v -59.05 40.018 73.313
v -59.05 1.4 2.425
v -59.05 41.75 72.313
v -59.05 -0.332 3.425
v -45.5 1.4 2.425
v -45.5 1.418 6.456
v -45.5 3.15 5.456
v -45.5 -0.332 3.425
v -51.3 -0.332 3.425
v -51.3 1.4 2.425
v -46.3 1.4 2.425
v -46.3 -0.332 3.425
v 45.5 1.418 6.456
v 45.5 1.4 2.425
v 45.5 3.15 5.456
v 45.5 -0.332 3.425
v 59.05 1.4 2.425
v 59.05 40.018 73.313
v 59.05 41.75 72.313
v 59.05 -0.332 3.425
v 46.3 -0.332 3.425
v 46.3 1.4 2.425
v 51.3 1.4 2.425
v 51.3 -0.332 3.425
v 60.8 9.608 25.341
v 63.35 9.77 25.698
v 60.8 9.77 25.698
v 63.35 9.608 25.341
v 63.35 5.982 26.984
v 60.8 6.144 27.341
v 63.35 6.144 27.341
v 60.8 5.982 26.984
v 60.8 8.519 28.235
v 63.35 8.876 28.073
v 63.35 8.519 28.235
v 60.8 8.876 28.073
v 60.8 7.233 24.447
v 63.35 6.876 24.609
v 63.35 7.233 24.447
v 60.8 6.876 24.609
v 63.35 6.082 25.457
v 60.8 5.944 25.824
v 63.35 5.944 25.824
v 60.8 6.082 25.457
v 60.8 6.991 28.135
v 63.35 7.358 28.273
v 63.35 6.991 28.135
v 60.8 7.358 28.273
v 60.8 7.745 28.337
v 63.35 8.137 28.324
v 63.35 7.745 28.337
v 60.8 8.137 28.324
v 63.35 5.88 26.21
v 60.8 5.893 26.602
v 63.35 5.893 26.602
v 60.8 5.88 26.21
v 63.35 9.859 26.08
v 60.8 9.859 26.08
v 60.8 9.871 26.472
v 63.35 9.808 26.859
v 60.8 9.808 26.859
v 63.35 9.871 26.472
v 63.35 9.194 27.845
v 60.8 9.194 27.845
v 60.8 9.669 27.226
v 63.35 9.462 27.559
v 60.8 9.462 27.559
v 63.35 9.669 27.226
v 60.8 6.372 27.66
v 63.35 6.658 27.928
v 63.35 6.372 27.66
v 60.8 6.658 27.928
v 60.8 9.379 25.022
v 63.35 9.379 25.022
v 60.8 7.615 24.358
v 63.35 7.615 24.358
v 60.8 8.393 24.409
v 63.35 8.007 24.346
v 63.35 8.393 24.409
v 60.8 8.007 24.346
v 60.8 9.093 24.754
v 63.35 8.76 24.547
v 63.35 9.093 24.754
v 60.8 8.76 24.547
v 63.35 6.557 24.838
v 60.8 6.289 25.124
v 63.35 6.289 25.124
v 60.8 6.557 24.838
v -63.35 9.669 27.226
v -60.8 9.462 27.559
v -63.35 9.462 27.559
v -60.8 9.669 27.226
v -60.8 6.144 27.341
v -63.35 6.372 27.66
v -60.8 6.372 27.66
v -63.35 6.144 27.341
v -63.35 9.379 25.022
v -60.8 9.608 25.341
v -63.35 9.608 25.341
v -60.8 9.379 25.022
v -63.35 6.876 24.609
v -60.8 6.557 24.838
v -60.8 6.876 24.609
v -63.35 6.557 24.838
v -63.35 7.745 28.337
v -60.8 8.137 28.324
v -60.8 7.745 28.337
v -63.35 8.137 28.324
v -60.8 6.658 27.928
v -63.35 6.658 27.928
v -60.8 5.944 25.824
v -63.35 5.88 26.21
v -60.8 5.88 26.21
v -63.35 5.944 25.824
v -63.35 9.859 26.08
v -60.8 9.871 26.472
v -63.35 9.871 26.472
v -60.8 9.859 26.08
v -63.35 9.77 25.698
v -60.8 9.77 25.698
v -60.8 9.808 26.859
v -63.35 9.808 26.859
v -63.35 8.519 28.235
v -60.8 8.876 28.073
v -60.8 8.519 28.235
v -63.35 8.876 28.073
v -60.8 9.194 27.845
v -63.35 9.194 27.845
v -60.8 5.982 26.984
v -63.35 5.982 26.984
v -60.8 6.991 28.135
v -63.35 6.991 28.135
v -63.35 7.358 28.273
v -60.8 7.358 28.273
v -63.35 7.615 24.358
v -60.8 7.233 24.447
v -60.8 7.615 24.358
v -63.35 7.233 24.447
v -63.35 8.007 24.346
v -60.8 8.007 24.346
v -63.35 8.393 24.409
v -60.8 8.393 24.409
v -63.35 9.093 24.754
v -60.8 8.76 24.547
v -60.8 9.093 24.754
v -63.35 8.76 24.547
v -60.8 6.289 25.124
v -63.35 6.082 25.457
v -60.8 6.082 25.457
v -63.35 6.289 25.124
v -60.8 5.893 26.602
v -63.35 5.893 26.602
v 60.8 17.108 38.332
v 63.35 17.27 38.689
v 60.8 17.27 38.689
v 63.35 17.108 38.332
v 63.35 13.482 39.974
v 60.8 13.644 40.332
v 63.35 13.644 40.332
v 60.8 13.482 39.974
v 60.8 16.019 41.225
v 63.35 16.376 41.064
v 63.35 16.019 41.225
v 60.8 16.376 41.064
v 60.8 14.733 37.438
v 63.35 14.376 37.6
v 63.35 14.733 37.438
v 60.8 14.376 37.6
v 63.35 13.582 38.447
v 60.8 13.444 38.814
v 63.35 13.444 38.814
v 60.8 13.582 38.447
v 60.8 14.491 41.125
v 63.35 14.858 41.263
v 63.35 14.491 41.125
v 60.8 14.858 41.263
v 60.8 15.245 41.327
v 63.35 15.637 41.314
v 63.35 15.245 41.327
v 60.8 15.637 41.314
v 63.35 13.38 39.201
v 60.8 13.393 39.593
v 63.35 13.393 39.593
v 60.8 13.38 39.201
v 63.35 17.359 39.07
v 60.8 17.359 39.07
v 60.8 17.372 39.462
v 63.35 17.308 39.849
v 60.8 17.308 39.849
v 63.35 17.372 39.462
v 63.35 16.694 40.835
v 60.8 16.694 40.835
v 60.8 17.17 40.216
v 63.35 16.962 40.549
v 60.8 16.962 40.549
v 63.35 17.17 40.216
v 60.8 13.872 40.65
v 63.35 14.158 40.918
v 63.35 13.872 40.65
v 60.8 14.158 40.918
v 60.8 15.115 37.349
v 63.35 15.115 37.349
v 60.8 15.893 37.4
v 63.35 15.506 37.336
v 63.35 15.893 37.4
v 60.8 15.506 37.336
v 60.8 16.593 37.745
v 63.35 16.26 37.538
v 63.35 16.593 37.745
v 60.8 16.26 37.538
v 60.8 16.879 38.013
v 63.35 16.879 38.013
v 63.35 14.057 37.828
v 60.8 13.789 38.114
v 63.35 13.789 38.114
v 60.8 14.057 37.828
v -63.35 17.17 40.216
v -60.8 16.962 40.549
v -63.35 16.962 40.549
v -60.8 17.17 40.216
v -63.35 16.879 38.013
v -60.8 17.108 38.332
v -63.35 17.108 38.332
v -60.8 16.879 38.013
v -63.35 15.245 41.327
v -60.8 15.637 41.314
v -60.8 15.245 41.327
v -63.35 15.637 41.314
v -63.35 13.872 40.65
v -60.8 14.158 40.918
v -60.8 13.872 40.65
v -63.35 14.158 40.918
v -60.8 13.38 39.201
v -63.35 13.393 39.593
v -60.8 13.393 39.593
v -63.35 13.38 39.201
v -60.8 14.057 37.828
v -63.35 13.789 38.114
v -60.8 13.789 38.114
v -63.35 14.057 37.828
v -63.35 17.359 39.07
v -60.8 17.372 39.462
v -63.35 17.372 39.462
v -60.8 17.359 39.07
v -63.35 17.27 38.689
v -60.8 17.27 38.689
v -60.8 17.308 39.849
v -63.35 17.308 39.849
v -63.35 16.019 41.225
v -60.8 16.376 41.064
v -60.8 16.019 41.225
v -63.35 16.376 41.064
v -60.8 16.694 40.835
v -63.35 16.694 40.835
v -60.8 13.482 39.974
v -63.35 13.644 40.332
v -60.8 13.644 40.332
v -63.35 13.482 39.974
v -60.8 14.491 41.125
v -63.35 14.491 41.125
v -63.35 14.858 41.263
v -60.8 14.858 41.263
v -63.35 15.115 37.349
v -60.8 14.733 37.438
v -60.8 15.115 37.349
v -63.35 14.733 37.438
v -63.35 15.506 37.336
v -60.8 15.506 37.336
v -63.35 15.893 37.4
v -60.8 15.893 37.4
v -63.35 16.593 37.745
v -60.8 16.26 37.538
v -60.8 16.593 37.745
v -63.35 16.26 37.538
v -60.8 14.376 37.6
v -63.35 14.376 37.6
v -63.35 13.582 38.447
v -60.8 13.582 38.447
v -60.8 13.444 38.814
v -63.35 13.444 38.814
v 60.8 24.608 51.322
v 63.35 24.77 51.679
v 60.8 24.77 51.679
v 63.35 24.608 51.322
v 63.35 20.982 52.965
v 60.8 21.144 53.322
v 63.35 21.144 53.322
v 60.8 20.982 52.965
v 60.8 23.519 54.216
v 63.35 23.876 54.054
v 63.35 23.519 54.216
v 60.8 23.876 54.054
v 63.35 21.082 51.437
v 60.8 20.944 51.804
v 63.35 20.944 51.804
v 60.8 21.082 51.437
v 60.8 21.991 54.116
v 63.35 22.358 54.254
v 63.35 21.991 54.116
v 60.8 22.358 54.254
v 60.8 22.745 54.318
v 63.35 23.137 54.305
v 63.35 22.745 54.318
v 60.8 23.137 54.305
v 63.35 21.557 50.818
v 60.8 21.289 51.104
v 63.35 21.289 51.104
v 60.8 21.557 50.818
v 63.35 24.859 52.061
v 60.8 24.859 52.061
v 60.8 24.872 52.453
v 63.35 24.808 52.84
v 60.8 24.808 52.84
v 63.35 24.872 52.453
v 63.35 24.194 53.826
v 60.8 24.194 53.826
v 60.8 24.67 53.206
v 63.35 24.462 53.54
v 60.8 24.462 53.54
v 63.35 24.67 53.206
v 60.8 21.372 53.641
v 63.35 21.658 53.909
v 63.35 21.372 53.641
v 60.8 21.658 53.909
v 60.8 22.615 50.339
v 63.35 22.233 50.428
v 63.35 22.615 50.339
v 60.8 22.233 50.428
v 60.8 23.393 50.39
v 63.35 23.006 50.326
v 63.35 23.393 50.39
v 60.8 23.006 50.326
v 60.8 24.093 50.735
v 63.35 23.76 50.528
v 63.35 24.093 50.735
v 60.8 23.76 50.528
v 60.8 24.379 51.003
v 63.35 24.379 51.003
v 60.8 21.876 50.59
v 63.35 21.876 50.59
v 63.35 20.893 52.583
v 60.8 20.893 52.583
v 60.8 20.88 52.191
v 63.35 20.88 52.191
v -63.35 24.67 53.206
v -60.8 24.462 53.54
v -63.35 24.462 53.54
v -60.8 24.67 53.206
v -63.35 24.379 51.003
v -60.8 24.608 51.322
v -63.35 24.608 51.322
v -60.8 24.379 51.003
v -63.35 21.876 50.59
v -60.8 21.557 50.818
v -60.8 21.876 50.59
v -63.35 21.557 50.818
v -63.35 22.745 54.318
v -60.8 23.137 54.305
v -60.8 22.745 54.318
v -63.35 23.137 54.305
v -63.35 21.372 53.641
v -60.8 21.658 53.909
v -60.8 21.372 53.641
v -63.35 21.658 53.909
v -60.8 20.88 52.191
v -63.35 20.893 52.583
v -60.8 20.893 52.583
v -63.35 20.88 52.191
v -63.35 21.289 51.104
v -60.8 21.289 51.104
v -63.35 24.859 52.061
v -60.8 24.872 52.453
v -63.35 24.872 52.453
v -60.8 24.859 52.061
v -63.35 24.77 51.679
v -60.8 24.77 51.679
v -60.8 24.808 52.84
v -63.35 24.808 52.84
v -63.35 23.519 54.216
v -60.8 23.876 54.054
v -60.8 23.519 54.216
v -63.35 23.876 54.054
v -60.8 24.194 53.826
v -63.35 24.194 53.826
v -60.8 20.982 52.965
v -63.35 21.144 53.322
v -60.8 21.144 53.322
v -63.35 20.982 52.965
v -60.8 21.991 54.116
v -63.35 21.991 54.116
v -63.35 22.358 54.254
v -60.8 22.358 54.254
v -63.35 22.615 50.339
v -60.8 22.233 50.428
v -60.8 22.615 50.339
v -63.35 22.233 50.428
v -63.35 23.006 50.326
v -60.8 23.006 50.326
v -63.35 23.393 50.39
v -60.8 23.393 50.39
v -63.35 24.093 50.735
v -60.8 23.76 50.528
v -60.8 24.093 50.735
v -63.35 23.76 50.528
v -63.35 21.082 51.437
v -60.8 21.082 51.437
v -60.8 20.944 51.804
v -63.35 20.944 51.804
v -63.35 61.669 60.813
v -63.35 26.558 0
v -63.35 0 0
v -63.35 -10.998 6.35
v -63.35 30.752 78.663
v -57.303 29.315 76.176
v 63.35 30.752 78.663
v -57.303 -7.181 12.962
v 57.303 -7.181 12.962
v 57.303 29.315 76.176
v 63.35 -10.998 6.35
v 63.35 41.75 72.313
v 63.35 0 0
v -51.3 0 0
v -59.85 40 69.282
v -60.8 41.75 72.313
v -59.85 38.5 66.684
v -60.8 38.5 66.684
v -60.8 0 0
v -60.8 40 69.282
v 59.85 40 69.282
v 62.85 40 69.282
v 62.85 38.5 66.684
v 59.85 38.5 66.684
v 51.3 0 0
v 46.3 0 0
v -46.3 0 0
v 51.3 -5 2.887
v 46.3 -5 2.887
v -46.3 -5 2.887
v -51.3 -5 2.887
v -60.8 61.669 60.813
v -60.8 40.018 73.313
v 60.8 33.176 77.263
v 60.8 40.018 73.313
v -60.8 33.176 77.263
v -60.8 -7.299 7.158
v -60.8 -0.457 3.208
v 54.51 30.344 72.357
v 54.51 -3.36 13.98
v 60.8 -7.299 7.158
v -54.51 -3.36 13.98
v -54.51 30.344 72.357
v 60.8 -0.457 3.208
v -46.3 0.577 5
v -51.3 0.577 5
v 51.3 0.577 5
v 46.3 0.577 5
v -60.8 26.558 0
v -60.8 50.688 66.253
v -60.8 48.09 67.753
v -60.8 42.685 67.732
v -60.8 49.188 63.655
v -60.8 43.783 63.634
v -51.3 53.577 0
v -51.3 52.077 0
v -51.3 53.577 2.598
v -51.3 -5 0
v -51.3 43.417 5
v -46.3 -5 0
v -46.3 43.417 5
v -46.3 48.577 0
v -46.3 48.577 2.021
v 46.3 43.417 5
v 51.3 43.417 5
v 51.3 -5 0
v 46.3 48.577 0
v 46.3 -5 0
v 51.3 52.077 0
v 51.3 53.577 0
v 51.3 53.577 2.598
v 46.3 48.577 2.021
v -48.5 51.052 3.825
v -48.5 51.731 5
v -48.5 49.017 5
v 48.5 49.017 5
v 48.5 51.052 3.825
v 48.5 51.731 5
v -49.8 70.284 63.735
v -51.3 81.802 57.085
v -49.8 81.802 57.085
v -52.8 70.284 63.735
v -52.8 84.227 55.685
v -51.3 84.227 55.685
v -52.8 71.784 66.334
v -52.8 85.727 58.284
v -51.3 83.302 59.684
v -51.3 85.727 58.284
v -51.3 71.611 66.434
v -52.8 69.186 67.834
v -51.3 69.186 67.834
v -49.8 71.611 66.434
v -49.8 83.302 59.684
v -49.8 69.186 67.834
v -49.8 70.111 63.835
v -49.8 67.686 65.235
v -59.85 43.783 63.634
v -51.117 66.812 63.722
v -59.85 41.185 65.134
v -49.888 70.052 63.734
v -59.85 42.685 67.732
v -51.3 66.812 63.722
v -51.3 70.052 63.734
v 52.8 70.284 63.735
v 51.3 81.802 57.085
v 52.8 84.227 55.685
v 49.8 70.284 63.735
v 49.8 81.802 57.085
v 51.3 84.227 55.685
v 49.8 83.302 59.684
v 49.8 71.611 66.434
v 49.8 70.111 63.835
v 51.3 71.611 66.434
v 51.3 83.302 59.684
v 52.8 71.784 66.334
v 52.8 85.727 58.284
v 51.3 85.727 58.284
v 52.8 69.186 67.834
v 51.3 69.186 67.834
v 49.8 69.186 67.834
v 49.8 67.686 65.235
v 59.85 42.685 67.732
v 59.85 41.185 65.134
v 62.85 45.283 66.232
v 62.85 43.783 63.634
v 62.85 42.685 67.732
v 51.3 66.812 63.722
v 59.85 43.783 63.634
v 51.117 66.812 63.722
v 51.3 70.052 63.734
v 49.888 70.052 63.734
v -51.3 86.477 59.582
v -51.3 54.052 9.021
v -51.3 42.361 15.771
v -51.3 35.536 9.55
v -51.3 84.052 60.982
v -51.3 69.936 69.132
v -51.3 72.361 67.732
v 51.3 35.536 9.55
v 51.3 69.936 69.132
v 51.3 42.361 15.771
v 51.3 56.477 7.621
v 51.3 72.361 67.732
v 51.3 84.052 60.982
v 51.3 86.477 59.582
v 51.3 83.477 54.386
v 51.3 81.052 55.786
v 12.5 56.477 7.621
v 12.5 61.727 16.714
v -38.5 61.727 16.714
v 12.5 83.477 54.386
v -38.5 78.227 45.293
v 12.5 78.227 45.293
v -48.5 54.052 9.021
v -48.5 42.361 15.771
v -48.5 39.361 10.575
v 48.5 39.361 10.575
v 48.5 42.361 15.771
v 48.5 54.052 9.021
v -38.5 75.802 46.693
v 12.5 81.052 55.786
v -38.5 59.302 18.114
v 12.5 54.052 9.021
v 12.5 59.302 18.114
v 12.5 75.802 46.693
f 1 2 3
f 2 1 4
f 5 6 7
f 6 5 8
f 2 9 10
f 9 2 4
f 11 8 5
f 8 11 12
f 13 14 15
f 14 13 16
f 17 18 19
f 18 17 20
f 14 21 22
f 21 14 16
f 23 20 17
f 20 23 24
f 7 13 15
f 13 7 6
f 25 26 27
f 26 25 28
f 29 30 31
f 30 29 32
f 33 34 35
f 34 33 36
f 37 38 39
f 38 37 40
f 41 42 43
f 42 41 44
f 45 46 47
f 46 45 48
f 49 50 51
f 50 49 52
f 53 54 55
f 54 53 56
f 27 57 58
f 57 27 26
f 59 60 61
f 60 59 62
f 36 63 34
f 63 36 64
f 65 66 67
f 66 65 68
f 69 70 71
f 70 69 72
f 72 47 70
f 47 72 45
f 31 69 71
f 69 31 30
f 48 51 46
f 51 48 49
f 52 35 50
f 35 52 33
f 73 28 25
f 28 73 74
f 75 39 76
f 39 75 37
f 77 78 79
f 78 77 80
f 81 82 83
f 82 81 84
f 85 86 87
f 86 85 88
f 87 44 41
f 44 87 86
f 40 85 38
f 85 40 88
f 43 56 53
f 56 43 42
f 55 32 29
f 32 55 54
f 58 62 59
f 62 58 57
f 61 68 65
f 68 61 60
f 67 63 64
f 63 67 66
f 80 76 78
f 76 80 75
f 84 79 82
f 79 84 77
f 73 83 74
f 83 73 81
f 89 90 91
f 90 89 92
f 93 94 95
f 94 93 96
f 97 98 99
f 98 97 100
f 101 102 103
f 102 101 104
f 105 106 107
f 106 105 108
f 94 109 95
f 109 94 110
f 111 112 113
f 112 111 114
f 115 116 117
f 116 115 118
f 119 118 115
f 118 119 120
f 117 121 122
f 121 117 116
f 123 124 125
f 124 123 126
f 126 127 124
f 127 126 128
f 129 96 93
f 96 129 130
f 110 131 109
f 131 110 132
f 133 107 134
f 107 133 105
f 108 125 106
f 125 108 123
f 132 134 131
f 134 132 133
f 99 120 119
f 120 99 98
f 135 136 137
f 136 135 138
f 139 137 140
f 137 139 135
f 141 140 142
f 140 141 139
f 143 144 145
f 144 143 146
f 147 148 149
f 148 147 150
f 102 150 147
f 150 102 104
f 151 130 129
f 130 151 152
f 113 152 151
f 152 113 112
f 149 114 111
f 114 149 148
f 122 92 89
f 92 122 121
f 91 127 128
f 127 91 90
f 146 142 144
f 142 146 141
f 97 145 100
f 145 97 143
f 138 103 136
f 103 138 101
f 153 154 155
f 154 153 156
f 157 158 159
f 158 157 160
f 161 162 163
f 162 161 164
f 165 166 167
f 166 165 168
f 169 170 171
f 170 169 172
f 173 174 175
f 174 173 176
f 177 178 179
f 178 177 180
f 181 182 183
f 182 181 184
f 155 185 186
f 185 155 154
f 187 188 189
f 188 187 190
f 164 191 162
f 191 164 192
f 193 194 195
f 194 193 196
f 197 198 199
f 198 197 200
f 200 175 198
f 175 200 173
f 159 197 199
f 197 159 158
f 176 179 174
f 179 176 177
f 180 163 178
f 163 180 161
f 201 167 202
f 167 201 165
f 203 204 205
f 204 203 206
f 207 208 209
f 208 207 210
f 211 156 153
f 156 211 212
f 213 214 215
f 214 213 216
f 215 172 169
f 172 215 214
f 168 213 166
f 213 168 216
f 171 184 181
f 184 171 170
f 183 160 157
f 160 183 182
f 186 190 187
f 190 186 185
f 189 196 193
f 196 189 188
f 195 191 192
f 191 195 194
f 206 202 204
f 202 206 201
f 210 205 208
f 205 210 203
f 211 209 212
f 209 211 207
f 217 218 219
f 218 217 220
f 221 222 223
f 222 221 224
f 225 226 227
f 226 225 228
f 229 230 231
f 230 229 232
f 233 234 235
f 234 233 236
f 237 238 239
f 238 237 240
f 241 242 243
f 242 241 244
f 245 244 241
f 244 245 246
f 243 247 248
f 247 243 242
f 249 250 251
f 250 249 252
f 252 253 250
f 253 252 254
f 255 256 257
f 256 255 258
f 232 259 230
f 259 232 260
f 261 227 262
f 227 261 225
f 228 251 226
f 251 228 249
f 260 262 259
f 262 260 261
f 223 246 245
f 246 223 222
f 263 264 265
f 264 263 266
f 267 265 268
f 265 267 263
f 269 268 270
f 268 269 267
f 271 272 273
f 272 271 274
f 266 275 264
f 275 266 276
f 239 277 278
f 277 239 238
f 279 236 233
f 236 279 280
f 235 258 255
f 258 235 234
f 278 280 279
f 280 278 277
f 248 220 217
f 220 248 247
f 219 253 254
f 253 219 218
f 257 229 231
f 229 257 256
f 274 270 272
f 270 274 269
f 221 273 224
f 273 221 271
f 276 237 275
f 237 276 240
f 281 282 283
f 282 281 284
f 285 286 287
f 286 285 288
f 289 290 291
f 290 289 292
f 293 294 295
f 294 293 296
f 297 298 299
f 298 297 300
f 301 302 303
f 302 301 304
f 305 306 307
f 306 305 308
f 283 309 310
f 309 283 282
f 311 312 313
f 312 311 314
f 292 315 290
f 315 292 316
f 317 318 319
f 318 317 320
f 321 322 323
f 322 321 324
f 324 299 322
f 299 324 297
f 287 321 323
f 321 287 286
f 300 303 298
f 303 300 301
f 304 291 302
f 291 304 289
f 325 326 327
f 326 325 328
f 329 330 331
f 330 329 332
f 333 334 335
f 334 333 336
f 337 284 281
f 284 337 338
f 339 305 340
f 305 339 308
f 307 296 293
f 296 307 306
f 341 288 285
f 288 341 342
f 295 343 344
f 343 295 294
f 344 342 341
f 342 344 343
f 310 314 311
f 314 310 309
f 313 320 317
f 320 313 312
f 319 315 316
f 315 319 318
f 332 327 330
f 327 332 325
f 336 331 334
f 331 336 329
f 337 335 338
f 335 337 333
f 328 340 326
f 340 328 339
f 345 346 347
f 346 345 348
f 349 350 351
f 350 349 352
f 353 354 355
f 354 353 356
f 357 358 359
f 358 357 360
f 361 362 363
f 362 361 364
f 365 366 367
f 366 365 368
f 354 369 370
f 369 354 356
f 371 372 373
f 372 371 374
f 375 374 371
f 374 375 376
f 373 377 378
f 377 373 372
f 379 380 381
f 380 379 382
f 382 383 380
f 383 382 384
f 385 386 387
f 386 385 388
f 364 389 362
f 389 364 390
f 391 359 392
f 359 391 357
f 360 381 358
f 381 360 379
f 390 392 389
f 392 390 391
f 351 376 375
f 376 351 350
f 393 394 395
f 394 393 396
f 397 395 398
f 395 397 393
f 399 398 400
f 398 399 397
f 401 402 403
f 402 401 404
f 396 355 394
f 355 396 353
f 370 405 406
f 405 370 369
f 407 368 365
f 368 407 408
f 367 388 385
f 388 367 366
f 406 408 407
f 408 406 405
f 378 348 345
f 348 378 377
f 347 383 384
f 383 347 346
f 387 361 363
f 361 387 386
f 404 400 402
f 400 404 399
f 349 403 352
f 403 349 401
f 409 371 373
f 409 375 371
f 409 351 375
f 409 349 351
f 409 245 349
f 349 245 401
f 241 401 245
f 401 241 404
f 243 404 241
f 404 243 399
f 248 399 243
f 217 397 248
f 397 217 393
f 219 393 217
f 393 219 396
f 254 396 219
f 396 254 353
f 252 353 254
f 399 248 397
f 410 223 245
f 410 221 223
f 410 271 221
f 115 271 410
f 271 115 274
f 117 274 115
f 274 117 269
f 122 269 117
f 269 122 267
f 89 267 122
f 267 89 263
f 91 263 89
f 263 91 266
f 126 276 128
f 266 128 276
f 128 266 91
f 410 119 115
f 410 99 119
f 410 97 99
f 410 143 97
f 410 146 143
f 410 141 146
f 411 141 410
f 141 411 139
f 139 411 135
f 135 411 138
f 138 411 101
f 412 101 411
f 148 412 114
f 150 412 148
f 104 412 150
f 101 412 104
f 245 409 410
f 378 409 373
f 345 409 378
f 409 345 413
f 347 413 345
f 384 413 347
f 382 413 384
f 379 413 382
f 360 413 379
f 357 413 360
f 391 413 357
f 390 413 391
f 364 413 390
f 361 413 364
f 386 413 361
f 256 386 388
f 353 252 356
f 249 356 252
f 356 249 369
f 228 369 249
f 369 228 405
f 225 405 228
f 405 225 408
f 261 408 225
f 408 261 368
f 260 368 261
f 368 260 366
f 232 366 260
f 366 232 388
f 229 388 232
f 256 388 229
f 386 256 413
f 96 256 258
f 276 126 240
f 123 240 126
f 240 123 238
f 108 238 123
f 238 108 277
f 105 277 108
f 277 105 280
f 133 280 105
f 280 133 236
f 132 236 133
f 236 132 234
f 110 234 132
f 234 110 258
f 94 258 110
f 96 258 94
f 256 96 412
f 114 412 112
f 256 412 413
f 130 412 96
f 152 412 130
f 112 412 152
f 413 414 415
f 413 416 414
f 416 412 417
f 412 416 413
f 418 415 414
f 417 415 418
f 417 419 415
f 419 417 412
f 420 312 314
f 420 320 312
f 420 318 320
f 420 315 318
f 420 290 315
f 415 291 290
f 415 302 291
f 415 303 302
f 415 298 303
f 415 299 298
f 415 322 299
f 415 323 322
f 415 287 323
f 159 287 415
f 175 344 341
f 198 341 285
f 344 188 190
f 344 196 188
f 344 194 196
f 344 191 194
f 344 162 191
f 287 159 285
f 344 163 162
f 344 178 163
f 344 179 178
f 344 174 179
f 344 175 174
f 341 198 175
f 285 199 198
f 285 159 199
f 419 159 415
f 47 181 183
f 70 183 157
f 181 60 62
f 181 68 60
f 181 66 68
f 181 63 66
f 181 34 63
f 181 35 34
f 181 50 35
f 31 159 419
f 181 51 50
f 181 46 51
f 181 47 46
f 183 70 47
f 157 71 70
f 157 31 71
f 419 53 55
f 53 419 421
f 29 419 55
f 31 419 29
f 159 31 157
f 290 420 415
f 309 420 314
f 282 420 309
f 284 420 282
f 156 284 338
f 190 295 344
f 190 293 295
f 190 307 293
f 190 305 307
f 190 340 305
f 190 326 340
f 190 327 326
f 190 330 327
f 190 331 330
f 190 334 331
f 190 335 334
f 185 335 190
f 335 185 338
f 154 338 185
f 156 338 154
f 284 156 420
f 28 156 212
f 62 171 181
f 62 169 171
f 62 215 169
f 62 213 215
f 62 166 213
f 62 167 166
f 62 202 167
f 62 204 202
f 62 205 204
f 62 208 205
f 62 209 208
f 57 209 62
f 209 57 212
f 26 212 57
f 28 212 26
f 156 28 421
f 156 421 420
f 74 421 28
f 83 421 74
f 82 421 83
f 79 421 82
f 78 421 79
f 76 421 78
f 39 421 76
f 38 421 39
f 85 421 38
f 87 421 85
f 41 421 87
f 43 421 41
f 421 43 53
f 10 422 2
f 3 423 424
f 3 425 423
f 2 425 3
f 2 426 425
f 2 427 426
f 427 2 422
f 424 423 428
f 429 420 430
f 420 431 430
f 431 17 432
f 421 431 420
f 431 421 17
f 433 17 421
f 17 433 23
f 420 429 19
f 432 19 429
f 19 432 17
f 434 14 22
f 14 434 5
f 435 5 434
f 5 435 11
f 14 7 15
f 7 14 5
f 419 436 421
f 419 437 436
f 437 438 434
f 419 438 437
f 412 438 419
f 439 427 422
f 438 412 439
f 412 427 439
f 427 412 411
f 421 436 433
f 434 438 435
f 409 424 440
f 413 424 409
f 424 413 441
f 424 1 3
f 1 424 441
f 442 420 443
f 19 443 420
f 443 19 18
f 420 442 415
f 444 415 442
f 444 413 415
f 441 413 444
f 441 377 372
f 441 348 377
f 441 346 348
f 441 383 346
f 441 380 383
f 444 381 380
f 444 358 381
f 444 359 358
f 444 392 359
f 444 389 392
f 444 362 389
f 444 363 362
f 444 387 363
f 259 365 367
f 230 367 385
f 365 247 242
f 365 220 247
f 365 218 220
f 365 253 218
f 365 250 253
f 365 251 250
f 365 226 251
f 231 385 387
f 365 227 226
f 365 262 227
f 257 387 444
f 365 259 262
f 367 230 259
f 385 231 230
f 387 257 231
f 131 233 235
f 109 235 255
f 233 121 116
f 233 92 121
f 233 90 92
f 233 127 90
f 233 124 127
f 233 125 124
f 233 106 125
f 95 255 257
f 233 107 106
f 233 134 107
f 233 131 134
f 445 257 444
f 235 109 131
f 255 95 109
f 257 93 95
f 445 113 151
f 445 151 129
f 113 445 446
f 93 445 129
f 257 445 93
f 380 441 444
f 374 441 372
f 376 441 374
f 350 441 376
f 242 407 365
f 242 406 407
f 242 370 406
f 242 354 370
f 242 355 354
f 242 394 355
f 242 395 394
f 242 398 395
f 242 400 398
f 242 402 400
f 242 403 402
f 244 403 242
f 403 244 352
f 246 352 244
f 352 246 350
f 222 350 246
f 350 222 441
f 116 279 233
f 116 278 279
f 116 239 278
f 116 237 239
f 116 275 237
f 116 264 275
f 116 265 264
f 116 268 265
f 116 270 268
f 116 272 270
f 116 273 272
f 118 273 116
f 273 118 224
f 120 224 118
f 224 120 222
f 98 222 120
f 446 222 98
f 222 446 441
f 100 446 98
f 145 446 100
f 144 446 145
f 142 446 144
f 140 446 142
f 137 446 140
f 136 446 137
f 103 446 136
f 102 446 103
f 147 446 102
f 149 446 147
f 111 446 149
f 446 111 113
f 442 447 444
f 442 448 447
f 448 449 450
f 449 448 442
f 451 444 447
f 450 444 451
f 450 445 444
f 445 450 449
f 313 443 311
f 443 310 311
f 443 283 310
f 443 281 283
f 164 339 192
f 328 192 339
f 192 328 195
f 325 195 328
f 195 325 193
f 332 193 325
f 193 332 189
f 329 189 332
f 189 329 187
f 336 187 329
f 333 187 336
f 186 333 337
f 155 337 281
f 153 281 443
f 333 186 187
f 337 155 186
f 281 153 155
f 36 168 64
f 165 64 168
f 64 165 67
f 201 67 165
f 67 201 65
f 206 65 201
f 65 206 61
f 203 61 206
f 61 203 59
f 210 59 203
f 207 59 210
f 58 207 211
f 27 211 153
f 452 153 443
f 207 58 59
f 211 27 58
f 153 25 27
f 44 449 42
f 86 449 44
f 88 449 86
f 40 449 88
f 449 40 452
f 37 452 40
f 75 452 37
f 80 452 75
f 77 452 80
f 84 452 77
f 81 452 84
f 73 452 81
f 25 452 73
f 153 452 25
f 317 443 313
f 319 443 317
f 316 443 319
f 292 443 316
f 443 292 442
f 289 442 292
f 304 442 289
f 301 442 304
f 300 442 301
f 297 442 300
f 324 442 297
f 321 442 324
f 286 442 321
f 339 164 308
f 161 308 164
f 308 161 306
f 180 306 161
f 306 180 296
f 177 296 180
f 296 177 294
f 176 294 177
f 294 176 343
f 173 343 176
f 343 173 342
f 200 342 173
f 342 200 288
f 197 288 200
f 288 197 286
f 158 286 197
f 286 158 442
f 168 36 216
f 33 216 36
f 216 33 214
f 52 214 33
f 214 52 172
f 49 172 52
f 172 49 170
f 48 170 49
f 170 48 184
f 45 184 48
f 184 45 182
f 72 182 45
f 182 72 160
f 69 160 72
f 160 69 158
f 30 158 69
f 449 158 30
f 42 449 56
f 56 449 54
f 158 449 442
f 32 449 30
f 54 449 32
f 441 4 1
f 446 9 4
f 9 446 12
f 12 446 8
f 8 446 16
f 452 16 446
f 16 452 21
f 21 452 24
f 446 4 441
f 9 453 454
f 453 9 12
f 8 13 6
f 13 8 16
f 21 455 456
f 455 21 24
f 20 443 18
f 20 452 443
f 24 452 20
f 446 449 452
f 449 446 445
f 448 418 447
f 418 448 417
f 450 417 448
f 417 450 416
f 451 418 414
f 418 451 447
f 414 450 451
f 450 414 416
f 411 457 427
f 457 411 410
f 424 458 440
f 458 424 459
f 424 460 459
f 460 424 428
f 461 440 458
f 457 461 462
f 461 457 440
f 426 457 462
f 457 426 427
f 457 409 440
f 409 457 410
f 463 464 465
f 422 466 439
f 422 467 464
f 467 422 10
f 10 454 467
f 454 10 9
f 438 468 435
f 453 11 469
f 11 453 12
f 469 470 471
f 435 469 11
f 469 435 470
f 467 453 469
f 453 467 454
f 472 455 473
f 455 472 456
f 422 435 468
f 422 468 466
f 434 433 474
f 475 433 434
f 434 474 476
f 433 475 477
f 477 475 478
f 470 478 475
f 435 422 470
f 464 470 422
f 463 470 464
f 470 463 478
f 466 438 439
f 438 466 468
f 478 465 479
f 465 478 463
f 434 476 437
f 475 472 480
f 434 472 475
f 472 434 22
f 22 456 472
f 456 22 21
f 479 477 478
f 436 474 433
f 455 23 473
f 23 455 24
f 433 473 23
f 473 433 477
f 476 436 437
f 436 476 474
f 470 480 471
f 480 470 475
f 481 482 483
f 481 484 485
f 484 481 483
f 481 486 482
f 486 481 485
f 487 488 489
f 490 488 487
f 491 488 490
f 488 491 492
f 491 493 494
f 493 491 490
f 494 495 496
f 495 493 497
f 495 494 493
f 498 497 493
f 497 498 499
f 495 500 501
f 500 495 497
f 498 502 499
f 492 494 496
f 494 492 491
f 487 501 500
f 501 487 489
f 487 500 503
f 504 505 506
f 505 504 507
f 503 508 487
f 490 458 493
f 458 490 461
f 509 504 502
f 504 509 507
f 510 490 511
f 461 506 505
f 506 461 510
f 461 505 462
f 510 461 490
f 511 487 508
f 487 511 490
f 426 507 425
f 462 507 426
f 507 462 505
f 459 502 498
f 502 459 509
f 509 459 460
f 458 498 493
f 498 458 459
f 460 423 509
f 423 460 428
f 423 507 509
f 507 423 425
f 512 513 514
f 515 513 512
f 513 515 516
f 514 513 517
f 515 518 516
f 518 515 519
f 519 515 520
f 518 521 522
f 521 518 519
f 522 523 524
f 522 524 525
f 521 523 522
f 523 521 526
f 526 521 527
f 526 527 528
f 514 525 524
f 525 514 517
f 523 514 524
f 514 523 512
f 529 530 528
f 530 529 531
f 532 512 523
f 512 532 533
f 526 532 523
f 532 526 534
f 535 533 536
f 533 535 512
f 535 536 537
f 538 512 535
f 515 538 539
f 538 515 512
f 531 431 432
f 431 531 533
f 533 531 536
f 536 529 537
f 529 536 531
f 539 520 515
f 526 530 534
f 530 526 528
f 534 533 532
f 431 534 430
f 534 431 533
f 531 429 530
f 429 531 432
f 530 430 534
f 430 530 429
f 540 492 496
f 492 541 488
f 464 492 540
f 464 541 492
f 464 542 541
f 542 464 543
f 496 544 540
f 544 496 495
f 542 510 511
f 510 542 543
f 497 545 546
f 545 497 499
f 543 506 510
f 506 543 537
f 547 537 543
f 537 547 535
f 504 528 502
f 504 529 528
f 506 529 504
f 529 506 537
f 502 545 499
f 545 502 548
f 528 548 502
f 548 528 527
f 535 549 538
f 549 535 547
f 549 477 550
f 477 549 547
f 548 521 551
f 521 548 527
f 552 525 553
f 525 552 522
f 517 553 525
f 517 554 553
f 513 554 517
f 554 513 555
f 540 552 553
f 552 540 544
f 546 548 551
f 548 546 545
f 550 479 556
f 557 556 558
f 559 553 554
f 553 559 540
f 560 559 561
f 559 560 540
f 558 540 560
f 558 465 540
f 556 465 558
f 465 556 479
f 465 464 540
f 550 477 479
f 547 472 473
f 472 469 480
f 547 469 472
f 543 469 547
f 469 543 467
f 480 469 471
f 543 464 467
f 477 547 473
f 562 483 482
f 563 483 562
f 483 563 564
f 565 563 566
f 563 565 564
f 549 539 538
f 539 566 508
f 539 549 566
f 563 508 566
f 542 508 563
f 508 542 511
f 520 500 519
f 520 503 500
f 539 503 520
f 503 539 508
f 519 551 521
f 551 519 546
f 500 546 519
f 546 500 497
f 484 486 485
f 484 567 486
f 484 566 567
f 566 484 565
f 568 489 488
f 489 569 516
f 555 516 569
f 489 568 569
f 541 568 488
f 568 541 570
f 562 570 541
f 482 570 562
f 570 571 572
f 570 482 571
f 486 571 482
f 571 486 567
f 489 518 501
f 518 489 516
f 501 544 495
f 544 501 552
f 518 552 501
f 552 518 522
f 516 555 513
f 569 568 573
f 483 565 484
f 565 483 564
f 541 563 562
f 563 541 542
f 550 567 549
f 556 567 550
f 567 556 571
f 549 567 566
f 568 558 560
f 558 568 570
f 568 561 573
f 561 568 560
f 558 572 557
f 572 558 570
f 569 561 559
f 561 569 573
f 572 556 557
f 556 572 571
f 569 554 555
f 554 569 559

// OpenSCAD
// ====================================================================
// Parametric Enclosure for Hosyond 5" Display + UniFi Travel Router
// Screen case and router pocket, both leaning back at the same angle.
// Dimensions in millimeters (mm)
//
// World frame: Z is up, the viewer is at -Y looking toward +Y.
// The case's bottom-back corner is the origin; the router pocket is parallel
// to the case, behind it, with its bottom edge on the ground.
//
// The screen slides into the case from the top, with the Pi mounted on its back.
// Values marked ESTIMATE have not been measured on the real parts.
//
// Four parts, each one solid item:
//   case          (blue)  - screen shell: bezel opening, vents, open top, back rails that
//                           hold the screen in (thin along the sides, clear of the corner posts), one side carried back over the Pi's ribbon
//   legs          (gray)  - ground frame: two bars angled from the case base to the pocket's
//                           sides, joined by a cross bar at the router pocket's base
//   arms          (white) - two struts: top corners of the router pocket -> back of case, square-ended
//   router_pocket (yellow) - sleeve that holds the UniFi Travel Router, same tilt as the case;
//                            open at the top and, above a ledge, at both side ends
// ====================================================================

$fn = 32; // Cylinder resolution

// --- 1. DISPLAY MODULE DIMENSIONS ---
pcb_w         = 121.10;
pcb_h         = 77.90;
pcb_t         = 1.60;
glass_w       = 110.00;
glass_h       = 66.80;
glass_t       = 1.80;
active_w      = 108.00;
active_h      = 64.80;
screen_t      = 7.50;    // ESTIMATE: glass face to the back of the PCB, at the PCB's edges

// Pi mounted on the back of the screen
pi_back       = 25;      // ESTIMATE: back of the screen's PCB to the rear-most point of the Pi
                         // (standoffs + board + USB/Ethernet jacks, or the ribbon's loop)
ribbon_side   = -1;      // Side the screen-to-Pi ribbon is on, seen from the front: -1 left, 1 right

// --- 2. UNIFI TRAVEL ROUTER DIMENSIONS (UTR) ---
// Nominal: 95.95 x 65 x 12.5 mm -> Added +1.0mm print tolerance
router_w      = 97.00;
router_h      = 66.00;
router_t      = 13.50;
// The router lies on a long edge with its display facing the pocket's window. Its sockets are
// on its two short ends: USB-C power on one, two Ethernet jacks under a flip-up cover on the other.
eth_end       = -ribbon_side;  // End of the pocket the Ethernet jacks face, seen from the front:
                               // -1 left, 1 right (default: the side the Pi's own Ethernet jack is on)
eth_cover_len = 36;      // ESTIMATE: length of the flip-up cover, measured from the router's Ethernet end
door_lip_h    = 6;       // Strip of the pocket's back lip left below and above the opening for that
                         // cover. Keep it under the cover's distance from the router's long edges
                         // (about 10 mm, read off photos)

// --- 3. ENCLOSURE PARAMETERS ---
window_up_bottom = 25.4 / 16;   // Screen window: bottom edge moved up 1/16" from centred on the active area
window_up_top    = 25.4 / 8;    // Screen window: top edge moved up 1/8" from centred on the active area
window_bevel     = 2.80;        // Screen window: its edge slopes out at 45 degrees across the front wall, so the opening
                                // at the front face is this much larger on every side (2.8 = the whole wall)
tilt_angle    = 60;      // Angle of the screen from horizontal (90 = upright)
wall_t        = 2.80;    // Shell wall thickness
case_depth    = 12.70;   // Case thickness, 1/2 inch

case_w        = pcb_w + (wall_t * 2);
case_h        = pcb_h + (wall_t * 2);

slot_clr      = 0.40;    // Front-to-back clearance for the screen in its slot
rail_w        = 3.50;    // How far the bottom back rail reaches in over the back of the screen's PCB
side_rail_w   = 1.50;    // ESTIMATE: how far the side rails reach in over the PCB. The screen has a mounting post at
                         // each corner whose outer edge is about 1.5 mm from the PCB's edge (read off a photo),
                         // and the top ones slide down the sides, so the rails must stay outside them
pi_open_w     = 92;      // ESTIMATE: width of the Pi's room and of the case back's middle opening (a Pi 4 board is
                         // 85 mm long; in the photo it sits about 1 mm off-centre);
                         // the side rails take up the rest of the screen's width. Keep it under twice
                         // 2 * (leg_x - bar_t/2) (about 92.6), or the Pi's room cuts into the legs
rail_t        = case_depth - wall_t - screen_t - slot_clr;   // Back rail thickness: what case_depth leaves
pi_rear       = pi_back - rail_t;                            // How far the Pi reaches behind the case back
pcb_back_z    = case_depth - wall_t - screen_t;              // Back face of the screen's PCB, from the case's back plane
mount_h       = 6;       // ESTIMATE: height of the screen's corner mounting posts behind its PCB (not readable from
                         // the photo)
assert(rail_t >= 1.2, "screen_t leaves less than 1.2 mm for the back rails; raise case_depth");

// --- 4. ROUTER POCKET, LEGS AND ARMS ---
bar_t         = 5;       // Square section of the legs
arm_t         = 3;       // Square section of the arms: thin enough to stay clear of the screen's corner posts
pocket_gap    = pi_rear + 3;   // Clear space between the case back and the pocket's front face: the Pi plus 3 mm
ledge_h       = 6;       // Ledge across the bottom of each open end of the pocket; keeps the router in

// Router pocket, in its own tilted frame: x = width, y = along the screen (up),
// z = thickness (toward the screen). Same tilt as the case.
pocket_w      = router_w + 2 * wall_t;
pocket_l      = router_h + wall_t;          // bottom end wall + router; top end is open for insertion
pocket_h      = router_t + 2 * wall_t;      // front wall + router + back lip

// Ground distance from the case's bottom edge to the pocket's bottom-back edge,
// chosen so the two parallel parts are pocket_gap apart.
leg_len       = (pocket_h + pocket_gap) / sin(tilt_angle);
leg_x         = pocket_w/2 - bar_t/2;       // legs run straight, flush with the pocket's sides (so within its width)

// --- ASSEMBLY ---
color("blue")  case();
color("gray")  legs();
color("white") arms();
color("yellow") router_pocket();

// Straight square bar between two points (hull of two cubes)
module bar(p1, p2, t = bar_t) {
    hull() {
        translate(p1) cube(t, center = true);
        translate(p2) cube(t, center = true);
    }
}

// Case's tilted frame: x = width (centred), y = up the screen from the case's bottom edge,
// z = depth, from the case's back plane (0) to its front face (case_depth)
module case_frame() {
    rotate([tilt_angle, 0, 0])
        children();
}

// Router pocket's tilted frame: x = width (0 to pocket_w), y = along the screen (up),
// z = thickness (toward the screen)
module pocket_frame() {
    translate([0, leg_len, 0])
        rotate([tilt_angle, 0, 0])
            translate([-pocket_w/2, 0, 0])
                children();
}

// Space the screen takes, in the case's frame: it slides in from the top and sits between
// the front wall and the back rails
module screen_slot() {
    translate([-(pcb_w + 0.5)/2, wall_t - 0.25, rail_t])
        cube([pcb_w + 0.5, case_h, case_depth - wall_t - rail_t]);
}

// Room for the Pi on the screen's back, in the case's frame: the opening between the back
// rails and the space behind it, tall enough to cover the Pi's path in from the top
module pi_room() {
    translate([-pi_open_w/2, wall_t + rail_w, -pi_rear])
        cube([pi_open_w, 3 * case_h, pi_rear + rail_t + 1]);
}

// Opening in the case back: the Pi's room, plus a channel along each side for the screen's corner
// mounting posts (they stand on the back of the PCB, about 7 mm across, ~5 mm in from each corner),
// which leaves only the bottom rail between the posts and a thin lip along each side
module back_opening() {
    pi_room();
    for (s = [-1, 1])
        translate([s > 0 ? pi_open_w/2 - 0.5 : -(pcb_w/2 - side_rail_w), wall_t, -pi_rear])
            cube([pcb_w/2 - side_rail_w - pi_open_w/2 + 0.5, 3 * case_h, pi_rear + rail_t + 1]);
}

// Space the router takes, in the pocket's frame
module router_cavity() {
    translate([wall_t, wall_t, wall_t])
        cube([router_w, router_h + 1.0, router_t]);
}

// What the legs and arms are cut back from, so they cannot block the screen, the Pi or the router
module keep_clear() {
    case_frame() {
        screen_slot();
        pi_room();
    }
    pocket_frame()
        router_cavity();
}

// --- CASE: shell, tilted back, bottom-back corner at the origin ---
// The screen slides in from the top. It rests on the bottom wall and leans on the back rails;
// the Pi on its back comes down through the opening between the rails.
module case() {
    case_frame() {
        difference() {
            // Outer Box
            translate([-case_w/2, 0, 0])
                cube([case_w, case_h, case_depth]);

            // Screen slot, open at the top
            screen_slot();

            // Back opening between the rails, open at the top
            back_opening();

            // Front Screen Cutout (Bezel): centred, then its bottom edge moved up window_up_bottom
            // and its top edge up window_up_top
            translate([-(active_w + 1.0)/2, (case_h - active_h - 1.0)/2 + window_up_bottom, case_depth - wall_t * 1.5])
                cube([active_w + 1.0, active_h + 1.0 + window_up_top - window_up_bottom, wall_t * 2]);

            // 45 degree slope around the window, from the wall's back face out to the front face (and 1 mm
            // beyond it, on the same slope, so the cut is clean)
            hull() {
                translate([-(active_w + 1.0)/2, (case_h - active_h - 1.0)/2 + window_up_bottom, case_depth - window_bevel - 0.01])
                    cube([active_w + 1.0, active_h + 1.0 + window_up_top - window_up_bottom, 0.01]);
                translate([-(active_w + 1.0)/2 - window_bevel - 1, (case_h - active_h - 1.0)/2 + window_up_bottom - window_bevel - 1, case_depth + 1])
                    cube([active_w + 1.0 + 2 * (window_bevel + 1), active_h + 1.0 + window_up_top - window_up_bottom + 2 * (window_bevel + 1), 0.01]);
            }

            // Side Ventilation Slots
            for (y = [-15, 0, 15]) {
                translate([case_w/2 - wall_t, case_h/2 + y, case_depth/2])
                    rotate([0, 90, 0])
                        cylinder(h = wall_t * 3, d = 4, center = true);
                translate([-case_w/2 + wall_t, case_h/2 + y, case_depth/2])
                    rotate([0, 90, 0])
                        cylinder(h = wall_t * 3, d = 4, center = true);
            }
        }

        // Side wall carried back as far as the Pi reaches, to shield the screen-to-Pi ribbon.
        // Its lower rear corner is cut off along the ground. The other side stays open for
        // the Pi's USB and Ethernet plugs.
        translate([ribbon_side > 0 ? (pcb_w + 0.5)/2 : -case_w/2, 0, 0])
            rotate([90, 0, 90])
                linear_extrude((case_w - pcb_w - 0.5)/2)
                    polygon([[0, 0], [0, 1], [case_h, 1], [case_h, -pi_rear],
                             [pi_rear / tan(tilt_angle), -pi_rear]]);
    }
    // No screw bosses: the screen's mounting holes are on its back side.
    // Add bosses here once their positions are known.
}

// --- ROUTER POCKET: parallel to the case, behind it, bottom edge on the ground ---
// Solid wall faces the case; the lip with the window faces away. The router drops in from
// the top end, display toward the window, and rests on the bottom end wall between the two
// end ledges. Its plugs go in through the open ends.
module router_pocket() {
    pocket_frame()
        difference() {
            cube([pocket_w, pocket_l, pocket_h]);

            // Router cavity, open at the top end
            router_cavity();

            // Both side ends open above the ledge
            translate([-1, wall_t + ledge_h, wall_t])
                cube([pocket_w + 2, router_h + 1.0, router_t]);

            // Window in the back lip so the router's screen/ports show
            translate([(pocket_w - (router_w - 20))/2, wall_t + router_h/4, -1])
                cube([router_w - 20, router_h/2, wall_t + 2]);

            // Back lip cut away over the flip-up cover of the Ethernet jacks, so it can lift.
            // A strip of the lip stays below and above the opening to keep the router in place.
            translate([eth_end > 0 ? pocket_w - wall_t - eth_cover_len : -1, wall_t + door_lip_h, -1])
                cube([eth_cover_len + wall_t + 1, router_h - 2 * door_lip_h, wall_t + 2]);
        }
}

// --- LEGS: ground-level frame from the case base to the router pocket base ---
// Two straight bars, parallel to each other, flush with the pocket's sides (so within its width),
// from the pocket's bottom edge to the bottom of the screen case; they do not widen. A cross bar
// joins them along the pocket's bottom edge.
module legs() {
    yc = leg_len - 1;                        // 1 mm inside the pocket's bottom end wall
    difference() {
        union() {
            for (s = [-1, 1])
                bar([s * leg_x, -bar_t/2, bar_t/2],
                    [s * leg_x, yc, bar_t/2]);
            bar([-leg_x, yc, bar_t/2],
                [leg_x, yc, bar_t/2]);
        }
        keep_clear();
    }
}

// --- ARMS: struts from the top corners of the router pocket to the back of the case ---
// Drawn in the case's tilted frame, so every bar's end faces are square to the case and the
// pocket (parallel to the case's back face, not cut at a slant). Each arm runs beside the
// pocket's open end from its back face to its front face, then angles in toward the line of
// the case's side wall as it slopes up the screen, and goes straight forward the last few mm
// into the case's back. It stays above the router's sockets. The arm is thinner than the legs
// so its last run stays outside the screen's corner posts (they stand on the PCB's back and the
// top ones slide down the case's side as the screen goes in).
module arms() {
    gap = pocket_gap;
    ya  = leg_len * cos(tilt_angle) + pocket_l - arm_t;   // along the screen, near the pocket's top end
    zb  = -(pocket_h + gap) + arm_t/2;                   // flush with the pocket's back face
    zf  = -gap - arm_t/2;                                // flush with the pocket's front face
    u   = case_h - bar_t;                                // up the case back from its bottom edge
    xp  = pocket_w/2 + arm_t/2 - 1.5;                    // beside the pocket, 1.5 mm into its side face
    xc  = case_w/2 - arm_t/2 - 0.5;                      // in the case's side wall, 0.5 mm in from its outer face
    zs  = pcb_back_z - mount_h - 1;                      // behind the corner posts, which end at mount_h
    difference() {
        case_frame()
            for (s = [-1, 1]) {
                bar([s * xp, ya, zb], [s * xp, ya, zf], arm_t);
                bar([s * xp, ya, zf], [s * xc, u,  zs], arm_t);
                bar([s * xc, u,  zs], [s * xc, u,  arm_t/2], arm_t);   // flush with the case's back face
            }
        keep_clear();
    }
}
